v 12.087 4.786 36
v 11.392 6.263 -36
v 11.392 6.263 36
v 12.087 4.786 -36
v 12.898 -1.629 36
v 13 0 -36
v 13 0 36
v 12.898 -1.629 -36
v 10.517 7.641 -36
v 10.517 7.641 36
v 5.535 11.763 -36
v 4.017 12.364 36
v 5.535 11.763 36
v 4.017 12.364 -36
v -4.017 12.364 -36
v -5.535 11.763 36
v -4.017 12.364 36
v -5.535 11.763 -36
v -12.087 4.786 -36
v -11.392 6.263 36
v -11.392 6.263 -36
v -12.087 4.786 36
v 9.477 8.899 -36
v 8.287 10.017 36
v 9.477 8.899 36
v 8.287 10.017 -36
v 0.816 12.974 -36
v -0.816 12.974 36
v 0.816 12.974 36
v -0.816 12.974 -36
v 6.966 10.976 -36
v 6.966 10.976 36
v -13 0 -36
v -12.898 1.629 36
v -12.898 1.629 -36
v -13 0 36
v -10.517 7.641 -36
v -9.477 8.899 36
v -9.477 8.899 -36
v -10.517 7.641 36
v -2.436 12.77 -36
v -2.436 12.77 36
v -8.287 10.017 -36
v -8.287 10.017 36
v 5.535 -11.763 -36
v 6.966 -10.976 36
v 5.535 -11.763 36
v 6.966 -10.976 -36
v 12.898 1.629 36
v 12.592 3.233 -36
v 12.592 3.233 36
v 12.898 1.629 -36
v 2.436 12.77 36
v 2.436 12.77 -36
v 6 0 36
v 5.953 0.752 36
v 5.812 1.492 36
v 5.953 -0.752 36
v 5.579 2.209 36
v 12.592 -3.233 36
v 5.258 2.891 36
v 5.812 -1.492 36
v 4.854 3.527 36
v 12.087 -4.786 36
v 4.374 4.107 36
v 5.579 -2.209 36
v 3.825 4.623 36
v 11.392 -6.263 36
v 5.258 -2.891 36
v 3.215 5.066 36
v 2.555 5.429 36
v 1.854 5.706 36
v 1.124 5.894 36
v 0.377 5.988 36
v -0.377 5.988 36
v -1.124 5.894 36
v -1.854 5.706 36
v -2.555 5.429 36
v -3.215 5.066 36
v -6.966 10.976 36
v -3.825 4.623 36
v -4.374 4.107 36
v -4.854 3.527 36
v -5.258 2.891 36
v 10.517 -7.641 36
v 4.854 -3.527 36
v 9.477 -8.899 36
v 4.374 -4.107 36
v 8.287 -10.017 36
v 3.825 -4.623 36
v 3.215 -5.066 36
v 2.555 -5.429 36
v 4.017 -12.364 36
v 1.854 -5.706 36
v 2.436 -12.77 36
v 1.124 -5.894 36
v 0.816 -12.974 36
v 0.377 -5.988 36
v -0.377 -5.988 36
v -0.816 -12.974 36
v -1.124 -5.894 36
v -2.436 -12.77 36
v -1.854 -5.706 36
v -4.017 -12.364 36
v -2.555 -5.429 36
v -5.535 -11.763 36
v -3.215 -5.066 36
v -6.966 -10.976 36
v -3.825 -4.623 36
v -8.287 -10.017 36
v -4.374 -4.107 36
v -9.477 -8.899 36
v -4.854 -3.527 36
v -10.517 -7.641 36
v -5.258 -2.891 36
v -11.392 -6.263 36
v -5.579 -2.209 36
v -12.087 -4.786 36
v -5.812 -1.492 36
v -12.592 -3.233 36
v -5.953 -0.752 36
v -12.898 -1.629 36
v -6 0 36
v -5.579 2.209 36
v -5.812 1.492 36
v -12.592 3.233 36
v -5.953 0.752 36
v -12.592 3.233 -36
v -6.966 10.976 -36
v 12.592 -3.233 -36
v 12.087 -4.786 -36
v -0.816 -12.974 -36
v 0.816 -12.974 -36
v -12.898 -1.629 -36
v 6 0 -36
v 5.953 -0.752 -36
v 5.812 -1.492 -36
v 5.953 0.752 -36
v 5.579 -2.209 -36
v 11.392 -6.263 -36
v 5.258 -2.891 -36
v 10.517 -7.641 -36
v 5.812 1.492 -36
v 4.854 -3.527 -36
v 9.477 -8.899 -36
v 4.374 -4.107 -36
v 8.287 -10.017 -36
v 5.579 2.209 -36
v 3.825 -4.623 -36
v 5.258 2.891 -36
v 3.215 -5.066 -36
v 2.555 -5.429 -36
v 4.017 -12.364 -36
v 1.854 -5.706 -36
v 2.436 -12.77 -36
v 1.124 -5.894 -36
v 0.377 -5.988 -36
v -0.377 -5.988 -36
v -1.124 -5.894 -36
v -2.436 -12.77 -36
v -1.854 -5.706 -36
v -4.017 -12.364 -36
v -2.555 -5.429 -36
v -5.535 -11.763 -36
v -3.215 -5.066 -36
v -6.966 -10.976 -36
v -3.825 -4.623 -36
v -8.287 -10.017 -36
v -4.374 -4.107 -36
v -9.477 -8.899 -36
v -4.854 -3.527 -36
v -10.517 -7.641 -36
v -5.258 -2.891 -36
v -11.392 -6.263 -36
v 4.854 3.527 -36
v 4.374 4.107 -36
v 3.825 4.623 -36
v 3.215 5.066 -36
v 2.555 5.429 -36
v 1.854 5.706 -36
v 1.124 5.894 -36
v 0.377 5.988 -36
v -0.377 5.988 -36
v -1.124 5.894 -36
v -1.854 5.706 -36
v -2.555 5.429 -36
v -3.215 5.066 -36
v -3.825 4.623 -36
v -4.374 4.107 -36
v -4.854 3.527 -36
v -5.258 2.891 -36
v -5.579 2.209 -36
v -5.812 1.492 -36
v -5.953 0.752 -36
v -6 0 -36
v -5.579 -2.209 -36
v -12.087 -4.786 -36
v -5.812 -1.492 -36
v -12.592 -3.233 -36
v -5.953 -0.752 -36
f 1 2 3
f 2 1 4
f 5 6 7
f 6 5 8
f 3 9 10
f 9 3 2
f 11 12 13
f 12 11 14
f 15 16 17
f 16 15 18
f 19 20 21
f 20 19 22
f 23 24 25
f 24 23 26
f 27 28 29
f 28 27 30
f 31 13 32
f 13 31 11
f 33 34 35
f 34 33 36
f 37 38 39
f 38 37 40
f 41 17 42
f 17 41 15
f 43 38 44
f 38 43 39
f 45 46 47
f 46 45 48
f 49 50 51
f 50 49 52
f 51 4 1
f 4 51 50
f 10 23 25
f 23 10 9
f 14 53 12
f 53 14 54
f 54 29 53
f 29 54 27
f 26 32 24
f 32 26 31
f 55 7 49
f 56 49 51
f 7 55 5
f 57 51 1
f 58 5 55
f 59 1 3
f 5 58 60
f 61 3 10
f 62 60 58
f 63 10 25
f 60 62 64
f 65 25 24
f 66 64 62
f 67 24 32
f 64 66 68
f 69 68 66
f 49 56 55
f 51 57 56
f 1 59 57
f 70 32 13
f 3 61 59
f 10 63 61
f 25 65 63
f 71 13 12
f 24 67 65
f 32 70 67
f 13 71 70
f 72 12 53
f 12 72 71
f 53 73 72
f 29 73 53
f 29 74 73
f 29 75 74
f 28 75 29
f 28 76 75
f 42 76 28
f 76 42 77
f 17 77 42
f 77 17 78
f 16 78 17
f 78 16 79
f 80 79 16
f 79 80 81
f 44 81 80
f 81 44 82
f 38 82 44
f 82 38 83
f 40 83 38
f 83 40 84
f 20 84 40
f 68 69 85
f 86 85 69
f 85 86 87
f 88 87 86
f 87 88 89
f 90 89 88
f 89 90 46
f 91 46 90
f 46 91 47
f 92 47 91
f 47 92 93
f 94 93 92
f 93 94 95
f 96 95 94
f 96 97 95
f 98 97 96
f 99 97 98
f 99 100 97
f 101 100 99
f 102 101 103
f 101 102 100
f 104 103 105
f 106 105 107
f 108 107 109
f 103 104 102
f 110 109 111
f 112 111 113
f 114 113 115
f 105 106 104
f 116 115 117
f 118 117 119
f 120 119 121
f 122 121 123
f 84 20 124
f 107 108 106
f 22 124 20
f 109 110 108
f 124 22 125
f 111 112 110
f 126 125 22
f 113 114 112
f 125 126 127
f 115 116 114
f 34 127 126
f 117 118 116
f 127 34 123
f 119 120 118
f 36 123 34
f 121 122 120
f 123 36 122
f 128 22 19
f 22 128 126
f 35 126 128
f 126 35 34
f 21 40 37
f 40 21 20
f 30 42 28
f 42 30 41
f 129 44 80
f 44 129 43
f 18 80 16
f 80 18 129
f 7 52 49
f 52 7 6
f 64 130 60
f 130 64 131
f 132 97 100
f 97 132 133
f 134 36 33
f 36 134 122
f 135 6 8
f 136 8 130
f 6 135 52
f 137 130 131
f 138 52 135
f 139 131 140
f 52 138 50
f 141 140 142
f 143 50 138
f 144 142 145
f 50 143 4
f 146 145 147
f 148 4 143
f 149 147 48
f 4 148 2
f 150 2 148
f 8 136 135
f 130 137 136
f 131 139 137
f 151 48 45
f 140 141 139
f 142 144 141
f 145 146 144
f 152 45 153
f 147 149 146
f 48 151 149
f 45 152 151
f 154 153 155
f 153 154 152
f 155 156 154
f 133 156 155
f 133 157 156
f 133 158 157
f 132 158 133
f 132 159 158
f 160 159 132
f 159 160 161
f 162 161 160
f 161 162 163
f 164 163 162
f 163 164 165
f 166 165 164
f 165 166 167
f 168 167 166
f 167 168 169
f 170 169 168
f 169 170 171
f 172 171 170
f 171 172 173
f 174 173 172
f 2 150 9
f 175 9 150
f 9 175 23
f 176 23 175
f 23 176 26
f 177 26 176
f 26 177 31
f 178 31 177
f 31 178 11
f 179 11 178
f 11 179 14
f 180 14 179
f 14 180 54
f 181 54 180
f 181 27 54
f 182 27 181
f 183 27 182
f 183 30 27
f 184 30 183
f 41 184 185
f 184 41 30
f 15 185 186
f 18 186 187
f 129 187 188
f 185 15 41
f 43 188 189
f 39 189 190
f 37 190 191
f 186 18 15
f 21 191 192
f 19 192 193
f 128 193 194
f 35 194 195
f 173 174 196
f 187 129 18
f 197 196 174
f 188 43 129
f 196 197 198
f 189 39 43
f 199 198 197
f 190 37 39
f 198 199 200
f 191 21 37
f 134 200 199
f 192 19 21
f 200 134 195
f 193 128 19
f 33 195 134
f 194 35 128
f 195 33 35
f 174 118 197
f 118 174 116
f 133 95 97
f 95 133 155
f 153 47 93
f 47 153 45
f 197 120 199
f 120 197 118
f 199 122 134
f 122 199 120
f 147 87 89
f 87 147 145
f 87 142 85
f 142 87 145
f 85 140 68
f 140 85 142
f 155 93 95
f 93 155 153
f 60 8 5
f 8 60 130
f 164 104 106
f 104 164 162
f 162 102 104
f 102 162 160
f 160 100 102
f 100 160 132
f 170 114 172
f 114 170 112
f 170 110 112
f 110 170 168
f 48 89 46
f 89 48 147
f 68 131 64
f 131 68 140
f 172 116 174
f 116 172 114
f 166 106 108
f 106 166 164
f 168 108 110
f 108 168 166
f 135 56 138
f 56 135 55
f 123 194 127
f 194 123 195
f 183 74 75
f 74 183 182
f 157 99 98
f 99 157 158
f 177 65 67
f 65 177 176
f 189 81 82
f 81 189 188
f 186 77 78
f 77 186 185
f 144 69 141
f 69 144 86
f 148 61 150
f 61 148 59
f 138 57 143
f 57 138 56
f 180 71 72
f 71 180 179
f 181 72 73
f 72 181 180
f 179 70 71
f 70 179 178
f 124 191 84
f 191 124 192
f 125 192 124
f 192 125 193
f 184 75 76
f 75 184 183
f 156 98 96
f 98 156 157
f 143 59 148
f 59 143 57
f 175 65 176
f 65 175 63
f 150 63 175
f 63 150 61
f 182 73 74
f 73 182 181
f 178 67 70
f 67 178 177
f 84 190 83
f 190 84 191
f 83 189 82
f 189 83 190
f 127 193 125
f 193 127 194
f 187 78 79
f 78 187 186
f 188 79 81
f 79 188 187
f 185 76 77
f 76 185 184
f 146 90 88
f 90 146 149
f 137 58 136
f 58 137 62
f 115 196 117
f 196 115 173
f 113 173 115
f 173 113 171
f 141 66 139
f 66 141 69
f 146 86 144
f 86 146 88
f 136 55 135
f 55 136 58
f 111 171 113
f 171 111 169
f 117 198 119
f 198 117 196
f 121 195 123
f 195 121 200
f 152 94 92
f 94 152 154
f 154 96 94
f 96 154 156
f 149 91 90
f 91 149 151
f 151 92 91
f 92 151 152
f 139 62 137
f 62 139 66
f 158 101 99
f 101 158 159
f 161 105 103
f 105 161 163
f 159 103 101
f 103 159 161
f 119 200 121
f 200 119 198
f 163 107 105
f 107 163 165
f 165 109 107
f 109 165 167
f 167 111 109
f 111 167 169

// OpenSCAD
$fn = 50;


difference() {
	union() {
		translate(v = [0, 0, -36.0000000000]) {
			cylinder(h = 72, r = 13.0000000000);
		}
	}
	union() {
		translate(v = [0, 0, -100.0000000000]) {
			cylinder(h = 200, r = 6);
		}
	}
}
